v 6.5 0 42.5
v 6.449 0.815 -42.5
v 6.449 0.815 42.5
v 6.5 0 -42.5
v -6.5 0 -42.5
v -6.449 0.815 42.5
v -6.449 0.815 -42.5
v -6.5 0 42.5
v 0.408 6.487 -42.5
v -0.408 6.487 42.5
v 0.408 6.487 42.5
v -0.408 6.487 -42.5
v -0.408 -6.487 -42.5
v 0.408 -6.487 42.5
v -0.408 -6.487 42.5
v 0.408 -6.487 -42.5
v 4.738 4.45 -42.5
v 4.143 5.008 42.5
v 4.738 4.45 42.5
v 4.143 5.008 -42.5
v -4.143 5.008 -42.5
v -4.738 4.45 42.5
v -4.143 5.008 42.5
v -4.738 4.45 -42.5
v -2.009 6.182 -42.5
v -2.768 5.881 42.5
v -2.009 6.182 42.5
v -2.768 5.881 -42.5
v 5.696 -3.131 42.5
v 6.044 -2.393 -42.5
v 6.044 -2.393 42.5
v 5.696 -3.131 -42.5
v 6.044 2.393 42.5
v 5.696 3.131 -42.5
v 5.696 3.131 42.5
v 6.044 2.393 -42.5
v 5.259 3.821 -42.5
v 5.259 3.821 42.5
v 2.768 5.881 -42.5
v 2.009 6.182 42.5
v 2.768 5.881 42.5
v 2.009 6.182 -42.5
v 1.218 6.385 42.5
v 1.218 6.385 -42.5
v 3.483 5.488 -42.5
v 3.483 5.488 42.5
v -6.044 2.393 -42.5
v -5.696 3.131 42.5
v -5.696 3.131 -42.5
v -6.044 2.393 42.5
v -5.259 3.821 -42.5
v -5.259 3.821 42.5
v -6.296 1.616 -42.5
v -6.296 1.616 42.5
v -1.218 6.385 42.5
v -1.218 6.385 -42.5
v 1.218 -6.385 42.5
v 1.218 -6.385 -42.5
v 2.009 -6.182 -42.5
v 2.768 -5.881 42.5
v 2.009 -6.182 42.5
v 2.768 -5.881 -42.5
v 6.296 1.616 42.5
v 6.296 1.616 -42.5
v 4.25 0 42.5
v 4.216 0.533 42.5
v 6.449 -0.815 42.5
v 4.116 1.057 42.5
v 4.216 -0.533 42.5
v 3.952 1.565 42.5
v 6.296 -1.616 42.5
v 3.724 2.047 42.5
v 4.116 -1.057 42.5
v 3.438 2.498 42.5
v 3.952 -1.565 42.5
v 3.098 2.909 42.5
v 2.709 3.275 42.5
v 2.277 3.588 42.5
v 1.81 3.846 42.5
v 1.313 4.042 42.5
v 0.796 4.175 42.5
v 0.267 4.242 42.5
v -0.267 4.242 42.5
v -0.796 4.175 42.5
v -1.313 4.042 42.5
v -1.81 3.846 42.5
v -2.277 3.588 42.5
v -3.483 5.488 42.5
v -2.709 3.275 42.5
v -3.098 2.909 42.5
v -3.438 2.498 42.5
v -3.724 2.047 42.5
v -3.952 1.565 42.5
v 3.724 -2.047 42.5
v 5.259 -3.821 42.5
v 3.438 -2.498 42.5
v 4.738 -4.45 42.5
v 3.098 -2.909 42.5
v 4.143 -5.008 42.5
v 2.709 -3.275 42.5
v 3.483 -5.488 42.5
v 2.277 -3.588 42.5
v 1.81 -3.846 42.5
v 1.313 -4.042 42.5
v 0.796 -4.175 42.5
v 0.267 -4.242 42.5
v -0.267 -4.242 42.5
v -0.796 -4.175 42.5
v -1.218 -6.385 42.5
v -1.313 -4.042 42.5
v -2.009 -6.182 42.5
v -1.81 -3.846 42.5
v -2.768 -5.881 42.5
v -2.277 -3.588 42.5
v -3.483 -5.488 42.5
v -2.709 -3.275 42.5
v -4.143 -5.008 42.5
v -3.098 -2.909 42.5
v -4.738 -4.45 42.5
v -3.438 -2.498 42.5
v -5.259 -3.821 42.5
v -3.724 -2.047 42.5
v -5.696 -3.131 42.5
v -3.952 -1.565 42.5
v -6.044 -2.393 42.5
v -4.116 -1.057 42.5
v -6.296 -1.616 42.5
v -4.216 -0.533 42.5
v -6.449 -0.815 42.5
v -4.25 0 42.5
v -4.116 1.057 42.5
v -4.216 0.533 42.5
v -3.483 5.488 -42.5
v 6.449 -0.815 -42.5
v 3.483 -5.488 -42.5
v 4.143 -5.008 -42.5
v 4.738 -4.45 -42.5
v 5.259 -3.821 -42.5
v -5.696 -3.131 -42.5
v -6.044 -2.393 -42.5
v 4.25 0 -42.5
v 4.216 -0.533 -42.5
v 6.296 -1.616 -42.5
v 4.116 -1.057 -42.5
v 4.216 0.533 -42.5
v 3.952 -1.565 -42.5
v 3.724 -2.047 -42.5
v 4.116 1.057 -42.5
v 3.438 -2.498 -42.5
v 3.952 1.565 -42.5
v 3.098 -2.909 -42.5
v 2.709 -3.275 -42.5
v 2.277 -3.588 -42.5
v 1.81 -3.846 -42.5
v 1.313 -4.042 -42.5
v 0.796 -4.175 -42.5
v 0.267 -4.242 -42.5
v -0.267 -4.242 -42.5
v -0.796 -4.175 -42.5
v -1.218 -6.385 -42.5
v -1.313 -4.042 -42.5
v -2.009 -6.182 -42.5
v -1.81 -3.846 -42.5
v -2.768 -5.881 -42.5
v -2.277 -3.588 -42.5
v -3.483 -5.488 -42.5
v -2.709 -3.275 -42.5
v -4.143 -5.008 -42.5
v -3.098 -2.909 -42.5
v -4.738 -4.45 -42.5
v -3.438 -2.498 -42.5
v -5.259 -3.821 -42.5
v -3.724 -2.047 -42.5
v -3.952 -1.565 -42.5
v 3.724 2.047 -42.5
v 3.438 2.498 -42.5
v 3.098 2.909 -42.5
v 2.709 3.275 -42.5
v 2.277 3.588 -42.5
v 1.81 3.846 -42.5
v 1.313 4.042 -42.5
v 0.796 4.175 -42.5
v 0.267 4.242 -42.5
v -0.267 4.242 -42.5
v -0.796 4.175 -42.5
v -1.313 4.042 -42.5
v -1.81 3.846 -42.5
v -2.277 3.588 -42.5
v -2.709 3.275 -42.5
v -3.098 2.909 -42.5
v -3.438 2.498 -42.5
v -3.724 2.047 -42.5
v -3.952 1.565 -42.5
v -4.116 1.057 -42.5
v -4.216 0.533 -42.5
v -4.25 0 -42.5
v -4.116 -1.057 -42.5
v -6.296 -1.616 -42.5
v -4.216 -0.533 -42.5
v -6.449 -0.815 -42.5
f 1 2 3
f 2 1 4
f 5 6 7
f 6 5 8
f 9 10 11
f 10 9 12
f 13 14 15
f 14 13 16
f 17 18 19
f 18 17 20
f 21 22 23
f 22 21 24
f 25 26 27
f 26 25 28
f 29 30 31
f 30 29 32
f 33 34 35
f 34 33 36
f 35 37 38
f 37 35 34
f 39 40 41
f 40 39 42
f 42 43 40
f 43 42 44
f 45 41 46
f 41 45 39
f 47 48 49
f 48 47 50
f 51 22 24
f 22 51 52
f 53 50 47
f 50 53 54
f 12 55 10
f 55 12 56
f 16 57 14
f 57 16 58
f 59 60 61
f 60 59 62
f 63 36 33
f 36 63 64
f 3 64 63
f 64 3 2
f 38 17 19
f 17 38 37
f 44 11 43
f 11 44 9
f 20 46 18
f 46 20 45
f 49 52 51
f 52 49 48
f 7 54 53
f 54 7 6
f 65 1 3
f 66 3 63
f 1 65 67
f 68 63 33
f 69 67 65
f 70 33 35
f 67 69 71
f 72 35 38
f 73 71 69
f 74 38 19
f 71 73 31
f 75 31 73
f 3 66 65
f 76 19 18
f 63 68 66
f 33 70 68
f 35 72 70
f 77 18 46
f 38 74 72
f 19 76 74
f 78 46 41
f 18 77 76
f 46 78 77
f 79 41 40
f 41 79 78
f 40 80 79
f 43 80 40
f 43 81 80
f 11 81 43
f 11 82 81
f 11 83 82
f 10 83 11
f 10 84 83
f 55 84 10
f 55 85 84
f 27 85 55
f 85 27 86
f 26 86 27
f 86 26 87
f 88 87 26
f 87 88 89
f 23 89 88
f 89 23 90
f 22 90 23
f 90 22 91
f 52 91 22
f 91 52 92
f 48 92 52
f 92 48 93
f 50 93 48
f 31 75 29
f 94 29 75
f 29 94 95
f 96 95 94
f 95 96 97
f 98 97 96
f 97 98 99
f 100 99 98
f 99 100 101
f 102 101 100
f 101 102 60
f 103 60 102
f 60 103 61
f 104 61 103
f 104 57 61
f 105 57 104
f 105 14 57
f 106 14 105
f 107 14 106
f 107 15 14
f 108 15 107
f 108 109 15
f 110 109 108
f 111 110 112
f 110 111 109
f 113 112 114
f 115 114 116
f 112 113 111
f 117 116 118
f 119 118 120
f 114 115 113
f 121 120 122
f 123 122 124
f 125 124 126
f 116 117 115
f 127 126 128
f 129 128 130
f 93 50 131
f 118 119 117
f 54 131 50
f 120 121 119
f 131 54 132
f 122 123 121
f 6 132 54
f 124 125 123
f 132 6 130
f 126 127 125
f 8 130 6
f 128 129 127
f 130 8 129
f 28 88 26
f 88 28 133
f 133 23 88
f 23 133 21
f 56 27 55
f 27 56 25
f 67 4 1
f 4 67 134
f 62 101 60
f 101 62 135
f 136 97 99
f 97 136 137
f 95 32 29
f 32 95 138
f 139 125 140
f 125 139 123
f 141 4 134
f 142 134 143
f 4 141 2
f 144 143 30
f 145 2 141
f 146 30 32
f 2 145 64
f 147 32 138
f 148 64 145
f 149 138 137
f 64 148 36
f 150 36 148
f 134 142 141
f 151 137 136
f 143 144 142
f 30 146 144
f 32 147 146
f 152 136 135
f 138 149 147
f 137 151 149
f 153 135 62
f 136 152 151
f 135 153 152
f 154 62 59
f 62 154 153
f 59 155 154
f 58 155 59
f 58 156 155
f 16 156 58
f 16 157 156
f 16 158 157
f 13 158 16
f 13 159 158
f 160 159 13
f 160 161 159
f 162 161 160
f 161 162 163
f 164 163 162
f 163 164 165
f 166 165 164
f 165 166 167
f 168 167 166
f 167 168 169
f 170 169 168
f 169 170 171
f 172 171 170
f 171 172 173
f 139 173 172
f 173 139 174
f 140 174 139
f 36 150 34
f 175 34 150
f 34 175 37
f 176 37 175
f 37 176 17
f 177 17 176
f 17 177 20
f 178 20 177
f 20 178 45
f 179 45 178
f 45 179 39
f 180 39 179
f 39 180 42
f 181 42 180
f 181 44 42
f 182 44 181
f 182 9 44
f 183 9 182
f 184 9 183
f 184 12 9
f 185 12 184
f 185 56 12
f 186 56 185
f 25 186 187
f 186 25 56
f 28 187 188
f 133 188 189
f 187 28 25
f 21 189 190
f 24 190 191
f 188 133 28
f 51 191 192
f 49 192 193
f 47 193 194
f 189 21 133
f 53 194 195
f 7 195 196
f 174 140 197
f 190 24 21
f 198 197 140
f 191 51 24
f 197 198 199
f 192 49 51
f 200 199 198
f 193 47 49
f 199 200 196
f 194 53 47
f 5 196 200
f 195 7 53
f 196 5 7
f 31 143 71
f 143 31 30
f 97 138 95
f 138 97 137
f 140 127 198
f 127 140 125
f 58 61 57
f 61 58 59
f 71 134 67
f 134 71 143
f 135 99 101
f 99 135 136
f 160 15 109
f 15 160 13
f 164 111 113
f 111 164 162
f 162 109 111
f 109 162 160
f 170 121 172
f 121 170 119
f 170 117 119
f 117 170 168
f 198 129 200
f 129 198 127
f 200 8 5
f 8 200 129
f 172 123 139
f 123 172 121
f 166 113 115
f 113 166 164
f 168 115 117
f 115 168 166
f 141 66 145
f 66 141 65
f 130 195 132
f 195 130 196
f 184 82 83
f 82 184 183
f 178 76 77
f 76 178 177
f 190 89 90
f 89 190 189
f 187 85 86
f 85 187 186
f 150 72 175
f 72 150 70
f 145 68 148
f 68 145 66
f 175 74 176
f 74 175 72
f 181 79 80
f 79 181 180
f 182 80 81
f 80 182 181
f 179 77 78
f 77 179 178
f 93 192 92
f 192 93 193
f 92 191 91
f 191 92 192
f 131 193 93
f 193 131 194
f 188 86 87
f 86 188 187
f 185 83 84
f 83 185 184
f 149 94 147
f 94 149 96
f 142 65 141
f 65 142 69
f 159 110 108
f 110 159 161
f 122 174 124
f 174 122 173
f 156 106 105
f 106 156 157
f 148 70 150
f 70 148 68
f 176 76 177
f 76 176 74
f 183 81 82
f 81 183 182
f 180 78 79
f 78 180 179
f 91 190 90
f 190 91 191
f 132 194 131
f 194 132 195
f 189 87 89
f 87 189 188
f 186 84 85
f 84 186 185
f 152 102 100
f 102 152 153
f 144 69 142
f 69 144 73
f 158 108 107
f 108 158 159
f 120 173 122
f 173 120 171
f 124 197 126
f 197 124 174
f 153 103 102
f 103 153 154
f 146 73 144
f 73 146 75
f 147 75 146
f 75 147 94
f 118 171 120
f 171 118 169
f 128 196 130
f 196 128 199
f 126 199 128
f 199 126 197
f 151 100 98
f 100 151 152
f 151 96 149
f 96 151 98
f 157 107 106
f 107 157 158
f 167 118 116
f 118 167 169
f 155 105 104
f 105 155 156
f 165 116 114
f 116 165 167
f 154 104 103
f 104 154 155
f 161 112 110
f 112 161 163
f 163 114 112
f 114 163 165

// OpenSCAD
$fn = 50;


difference() {
	union() {
		translate(v = [0, 0, -42.5000000000]) {
			cylinder(h = 85, r = 6.5000000000);
		}
	}
	union() {
		translate(v = [0, 0, -100.0000000000]) {
			cylinder(h = 200, r = 4.2500000000);
		}
	}
}
